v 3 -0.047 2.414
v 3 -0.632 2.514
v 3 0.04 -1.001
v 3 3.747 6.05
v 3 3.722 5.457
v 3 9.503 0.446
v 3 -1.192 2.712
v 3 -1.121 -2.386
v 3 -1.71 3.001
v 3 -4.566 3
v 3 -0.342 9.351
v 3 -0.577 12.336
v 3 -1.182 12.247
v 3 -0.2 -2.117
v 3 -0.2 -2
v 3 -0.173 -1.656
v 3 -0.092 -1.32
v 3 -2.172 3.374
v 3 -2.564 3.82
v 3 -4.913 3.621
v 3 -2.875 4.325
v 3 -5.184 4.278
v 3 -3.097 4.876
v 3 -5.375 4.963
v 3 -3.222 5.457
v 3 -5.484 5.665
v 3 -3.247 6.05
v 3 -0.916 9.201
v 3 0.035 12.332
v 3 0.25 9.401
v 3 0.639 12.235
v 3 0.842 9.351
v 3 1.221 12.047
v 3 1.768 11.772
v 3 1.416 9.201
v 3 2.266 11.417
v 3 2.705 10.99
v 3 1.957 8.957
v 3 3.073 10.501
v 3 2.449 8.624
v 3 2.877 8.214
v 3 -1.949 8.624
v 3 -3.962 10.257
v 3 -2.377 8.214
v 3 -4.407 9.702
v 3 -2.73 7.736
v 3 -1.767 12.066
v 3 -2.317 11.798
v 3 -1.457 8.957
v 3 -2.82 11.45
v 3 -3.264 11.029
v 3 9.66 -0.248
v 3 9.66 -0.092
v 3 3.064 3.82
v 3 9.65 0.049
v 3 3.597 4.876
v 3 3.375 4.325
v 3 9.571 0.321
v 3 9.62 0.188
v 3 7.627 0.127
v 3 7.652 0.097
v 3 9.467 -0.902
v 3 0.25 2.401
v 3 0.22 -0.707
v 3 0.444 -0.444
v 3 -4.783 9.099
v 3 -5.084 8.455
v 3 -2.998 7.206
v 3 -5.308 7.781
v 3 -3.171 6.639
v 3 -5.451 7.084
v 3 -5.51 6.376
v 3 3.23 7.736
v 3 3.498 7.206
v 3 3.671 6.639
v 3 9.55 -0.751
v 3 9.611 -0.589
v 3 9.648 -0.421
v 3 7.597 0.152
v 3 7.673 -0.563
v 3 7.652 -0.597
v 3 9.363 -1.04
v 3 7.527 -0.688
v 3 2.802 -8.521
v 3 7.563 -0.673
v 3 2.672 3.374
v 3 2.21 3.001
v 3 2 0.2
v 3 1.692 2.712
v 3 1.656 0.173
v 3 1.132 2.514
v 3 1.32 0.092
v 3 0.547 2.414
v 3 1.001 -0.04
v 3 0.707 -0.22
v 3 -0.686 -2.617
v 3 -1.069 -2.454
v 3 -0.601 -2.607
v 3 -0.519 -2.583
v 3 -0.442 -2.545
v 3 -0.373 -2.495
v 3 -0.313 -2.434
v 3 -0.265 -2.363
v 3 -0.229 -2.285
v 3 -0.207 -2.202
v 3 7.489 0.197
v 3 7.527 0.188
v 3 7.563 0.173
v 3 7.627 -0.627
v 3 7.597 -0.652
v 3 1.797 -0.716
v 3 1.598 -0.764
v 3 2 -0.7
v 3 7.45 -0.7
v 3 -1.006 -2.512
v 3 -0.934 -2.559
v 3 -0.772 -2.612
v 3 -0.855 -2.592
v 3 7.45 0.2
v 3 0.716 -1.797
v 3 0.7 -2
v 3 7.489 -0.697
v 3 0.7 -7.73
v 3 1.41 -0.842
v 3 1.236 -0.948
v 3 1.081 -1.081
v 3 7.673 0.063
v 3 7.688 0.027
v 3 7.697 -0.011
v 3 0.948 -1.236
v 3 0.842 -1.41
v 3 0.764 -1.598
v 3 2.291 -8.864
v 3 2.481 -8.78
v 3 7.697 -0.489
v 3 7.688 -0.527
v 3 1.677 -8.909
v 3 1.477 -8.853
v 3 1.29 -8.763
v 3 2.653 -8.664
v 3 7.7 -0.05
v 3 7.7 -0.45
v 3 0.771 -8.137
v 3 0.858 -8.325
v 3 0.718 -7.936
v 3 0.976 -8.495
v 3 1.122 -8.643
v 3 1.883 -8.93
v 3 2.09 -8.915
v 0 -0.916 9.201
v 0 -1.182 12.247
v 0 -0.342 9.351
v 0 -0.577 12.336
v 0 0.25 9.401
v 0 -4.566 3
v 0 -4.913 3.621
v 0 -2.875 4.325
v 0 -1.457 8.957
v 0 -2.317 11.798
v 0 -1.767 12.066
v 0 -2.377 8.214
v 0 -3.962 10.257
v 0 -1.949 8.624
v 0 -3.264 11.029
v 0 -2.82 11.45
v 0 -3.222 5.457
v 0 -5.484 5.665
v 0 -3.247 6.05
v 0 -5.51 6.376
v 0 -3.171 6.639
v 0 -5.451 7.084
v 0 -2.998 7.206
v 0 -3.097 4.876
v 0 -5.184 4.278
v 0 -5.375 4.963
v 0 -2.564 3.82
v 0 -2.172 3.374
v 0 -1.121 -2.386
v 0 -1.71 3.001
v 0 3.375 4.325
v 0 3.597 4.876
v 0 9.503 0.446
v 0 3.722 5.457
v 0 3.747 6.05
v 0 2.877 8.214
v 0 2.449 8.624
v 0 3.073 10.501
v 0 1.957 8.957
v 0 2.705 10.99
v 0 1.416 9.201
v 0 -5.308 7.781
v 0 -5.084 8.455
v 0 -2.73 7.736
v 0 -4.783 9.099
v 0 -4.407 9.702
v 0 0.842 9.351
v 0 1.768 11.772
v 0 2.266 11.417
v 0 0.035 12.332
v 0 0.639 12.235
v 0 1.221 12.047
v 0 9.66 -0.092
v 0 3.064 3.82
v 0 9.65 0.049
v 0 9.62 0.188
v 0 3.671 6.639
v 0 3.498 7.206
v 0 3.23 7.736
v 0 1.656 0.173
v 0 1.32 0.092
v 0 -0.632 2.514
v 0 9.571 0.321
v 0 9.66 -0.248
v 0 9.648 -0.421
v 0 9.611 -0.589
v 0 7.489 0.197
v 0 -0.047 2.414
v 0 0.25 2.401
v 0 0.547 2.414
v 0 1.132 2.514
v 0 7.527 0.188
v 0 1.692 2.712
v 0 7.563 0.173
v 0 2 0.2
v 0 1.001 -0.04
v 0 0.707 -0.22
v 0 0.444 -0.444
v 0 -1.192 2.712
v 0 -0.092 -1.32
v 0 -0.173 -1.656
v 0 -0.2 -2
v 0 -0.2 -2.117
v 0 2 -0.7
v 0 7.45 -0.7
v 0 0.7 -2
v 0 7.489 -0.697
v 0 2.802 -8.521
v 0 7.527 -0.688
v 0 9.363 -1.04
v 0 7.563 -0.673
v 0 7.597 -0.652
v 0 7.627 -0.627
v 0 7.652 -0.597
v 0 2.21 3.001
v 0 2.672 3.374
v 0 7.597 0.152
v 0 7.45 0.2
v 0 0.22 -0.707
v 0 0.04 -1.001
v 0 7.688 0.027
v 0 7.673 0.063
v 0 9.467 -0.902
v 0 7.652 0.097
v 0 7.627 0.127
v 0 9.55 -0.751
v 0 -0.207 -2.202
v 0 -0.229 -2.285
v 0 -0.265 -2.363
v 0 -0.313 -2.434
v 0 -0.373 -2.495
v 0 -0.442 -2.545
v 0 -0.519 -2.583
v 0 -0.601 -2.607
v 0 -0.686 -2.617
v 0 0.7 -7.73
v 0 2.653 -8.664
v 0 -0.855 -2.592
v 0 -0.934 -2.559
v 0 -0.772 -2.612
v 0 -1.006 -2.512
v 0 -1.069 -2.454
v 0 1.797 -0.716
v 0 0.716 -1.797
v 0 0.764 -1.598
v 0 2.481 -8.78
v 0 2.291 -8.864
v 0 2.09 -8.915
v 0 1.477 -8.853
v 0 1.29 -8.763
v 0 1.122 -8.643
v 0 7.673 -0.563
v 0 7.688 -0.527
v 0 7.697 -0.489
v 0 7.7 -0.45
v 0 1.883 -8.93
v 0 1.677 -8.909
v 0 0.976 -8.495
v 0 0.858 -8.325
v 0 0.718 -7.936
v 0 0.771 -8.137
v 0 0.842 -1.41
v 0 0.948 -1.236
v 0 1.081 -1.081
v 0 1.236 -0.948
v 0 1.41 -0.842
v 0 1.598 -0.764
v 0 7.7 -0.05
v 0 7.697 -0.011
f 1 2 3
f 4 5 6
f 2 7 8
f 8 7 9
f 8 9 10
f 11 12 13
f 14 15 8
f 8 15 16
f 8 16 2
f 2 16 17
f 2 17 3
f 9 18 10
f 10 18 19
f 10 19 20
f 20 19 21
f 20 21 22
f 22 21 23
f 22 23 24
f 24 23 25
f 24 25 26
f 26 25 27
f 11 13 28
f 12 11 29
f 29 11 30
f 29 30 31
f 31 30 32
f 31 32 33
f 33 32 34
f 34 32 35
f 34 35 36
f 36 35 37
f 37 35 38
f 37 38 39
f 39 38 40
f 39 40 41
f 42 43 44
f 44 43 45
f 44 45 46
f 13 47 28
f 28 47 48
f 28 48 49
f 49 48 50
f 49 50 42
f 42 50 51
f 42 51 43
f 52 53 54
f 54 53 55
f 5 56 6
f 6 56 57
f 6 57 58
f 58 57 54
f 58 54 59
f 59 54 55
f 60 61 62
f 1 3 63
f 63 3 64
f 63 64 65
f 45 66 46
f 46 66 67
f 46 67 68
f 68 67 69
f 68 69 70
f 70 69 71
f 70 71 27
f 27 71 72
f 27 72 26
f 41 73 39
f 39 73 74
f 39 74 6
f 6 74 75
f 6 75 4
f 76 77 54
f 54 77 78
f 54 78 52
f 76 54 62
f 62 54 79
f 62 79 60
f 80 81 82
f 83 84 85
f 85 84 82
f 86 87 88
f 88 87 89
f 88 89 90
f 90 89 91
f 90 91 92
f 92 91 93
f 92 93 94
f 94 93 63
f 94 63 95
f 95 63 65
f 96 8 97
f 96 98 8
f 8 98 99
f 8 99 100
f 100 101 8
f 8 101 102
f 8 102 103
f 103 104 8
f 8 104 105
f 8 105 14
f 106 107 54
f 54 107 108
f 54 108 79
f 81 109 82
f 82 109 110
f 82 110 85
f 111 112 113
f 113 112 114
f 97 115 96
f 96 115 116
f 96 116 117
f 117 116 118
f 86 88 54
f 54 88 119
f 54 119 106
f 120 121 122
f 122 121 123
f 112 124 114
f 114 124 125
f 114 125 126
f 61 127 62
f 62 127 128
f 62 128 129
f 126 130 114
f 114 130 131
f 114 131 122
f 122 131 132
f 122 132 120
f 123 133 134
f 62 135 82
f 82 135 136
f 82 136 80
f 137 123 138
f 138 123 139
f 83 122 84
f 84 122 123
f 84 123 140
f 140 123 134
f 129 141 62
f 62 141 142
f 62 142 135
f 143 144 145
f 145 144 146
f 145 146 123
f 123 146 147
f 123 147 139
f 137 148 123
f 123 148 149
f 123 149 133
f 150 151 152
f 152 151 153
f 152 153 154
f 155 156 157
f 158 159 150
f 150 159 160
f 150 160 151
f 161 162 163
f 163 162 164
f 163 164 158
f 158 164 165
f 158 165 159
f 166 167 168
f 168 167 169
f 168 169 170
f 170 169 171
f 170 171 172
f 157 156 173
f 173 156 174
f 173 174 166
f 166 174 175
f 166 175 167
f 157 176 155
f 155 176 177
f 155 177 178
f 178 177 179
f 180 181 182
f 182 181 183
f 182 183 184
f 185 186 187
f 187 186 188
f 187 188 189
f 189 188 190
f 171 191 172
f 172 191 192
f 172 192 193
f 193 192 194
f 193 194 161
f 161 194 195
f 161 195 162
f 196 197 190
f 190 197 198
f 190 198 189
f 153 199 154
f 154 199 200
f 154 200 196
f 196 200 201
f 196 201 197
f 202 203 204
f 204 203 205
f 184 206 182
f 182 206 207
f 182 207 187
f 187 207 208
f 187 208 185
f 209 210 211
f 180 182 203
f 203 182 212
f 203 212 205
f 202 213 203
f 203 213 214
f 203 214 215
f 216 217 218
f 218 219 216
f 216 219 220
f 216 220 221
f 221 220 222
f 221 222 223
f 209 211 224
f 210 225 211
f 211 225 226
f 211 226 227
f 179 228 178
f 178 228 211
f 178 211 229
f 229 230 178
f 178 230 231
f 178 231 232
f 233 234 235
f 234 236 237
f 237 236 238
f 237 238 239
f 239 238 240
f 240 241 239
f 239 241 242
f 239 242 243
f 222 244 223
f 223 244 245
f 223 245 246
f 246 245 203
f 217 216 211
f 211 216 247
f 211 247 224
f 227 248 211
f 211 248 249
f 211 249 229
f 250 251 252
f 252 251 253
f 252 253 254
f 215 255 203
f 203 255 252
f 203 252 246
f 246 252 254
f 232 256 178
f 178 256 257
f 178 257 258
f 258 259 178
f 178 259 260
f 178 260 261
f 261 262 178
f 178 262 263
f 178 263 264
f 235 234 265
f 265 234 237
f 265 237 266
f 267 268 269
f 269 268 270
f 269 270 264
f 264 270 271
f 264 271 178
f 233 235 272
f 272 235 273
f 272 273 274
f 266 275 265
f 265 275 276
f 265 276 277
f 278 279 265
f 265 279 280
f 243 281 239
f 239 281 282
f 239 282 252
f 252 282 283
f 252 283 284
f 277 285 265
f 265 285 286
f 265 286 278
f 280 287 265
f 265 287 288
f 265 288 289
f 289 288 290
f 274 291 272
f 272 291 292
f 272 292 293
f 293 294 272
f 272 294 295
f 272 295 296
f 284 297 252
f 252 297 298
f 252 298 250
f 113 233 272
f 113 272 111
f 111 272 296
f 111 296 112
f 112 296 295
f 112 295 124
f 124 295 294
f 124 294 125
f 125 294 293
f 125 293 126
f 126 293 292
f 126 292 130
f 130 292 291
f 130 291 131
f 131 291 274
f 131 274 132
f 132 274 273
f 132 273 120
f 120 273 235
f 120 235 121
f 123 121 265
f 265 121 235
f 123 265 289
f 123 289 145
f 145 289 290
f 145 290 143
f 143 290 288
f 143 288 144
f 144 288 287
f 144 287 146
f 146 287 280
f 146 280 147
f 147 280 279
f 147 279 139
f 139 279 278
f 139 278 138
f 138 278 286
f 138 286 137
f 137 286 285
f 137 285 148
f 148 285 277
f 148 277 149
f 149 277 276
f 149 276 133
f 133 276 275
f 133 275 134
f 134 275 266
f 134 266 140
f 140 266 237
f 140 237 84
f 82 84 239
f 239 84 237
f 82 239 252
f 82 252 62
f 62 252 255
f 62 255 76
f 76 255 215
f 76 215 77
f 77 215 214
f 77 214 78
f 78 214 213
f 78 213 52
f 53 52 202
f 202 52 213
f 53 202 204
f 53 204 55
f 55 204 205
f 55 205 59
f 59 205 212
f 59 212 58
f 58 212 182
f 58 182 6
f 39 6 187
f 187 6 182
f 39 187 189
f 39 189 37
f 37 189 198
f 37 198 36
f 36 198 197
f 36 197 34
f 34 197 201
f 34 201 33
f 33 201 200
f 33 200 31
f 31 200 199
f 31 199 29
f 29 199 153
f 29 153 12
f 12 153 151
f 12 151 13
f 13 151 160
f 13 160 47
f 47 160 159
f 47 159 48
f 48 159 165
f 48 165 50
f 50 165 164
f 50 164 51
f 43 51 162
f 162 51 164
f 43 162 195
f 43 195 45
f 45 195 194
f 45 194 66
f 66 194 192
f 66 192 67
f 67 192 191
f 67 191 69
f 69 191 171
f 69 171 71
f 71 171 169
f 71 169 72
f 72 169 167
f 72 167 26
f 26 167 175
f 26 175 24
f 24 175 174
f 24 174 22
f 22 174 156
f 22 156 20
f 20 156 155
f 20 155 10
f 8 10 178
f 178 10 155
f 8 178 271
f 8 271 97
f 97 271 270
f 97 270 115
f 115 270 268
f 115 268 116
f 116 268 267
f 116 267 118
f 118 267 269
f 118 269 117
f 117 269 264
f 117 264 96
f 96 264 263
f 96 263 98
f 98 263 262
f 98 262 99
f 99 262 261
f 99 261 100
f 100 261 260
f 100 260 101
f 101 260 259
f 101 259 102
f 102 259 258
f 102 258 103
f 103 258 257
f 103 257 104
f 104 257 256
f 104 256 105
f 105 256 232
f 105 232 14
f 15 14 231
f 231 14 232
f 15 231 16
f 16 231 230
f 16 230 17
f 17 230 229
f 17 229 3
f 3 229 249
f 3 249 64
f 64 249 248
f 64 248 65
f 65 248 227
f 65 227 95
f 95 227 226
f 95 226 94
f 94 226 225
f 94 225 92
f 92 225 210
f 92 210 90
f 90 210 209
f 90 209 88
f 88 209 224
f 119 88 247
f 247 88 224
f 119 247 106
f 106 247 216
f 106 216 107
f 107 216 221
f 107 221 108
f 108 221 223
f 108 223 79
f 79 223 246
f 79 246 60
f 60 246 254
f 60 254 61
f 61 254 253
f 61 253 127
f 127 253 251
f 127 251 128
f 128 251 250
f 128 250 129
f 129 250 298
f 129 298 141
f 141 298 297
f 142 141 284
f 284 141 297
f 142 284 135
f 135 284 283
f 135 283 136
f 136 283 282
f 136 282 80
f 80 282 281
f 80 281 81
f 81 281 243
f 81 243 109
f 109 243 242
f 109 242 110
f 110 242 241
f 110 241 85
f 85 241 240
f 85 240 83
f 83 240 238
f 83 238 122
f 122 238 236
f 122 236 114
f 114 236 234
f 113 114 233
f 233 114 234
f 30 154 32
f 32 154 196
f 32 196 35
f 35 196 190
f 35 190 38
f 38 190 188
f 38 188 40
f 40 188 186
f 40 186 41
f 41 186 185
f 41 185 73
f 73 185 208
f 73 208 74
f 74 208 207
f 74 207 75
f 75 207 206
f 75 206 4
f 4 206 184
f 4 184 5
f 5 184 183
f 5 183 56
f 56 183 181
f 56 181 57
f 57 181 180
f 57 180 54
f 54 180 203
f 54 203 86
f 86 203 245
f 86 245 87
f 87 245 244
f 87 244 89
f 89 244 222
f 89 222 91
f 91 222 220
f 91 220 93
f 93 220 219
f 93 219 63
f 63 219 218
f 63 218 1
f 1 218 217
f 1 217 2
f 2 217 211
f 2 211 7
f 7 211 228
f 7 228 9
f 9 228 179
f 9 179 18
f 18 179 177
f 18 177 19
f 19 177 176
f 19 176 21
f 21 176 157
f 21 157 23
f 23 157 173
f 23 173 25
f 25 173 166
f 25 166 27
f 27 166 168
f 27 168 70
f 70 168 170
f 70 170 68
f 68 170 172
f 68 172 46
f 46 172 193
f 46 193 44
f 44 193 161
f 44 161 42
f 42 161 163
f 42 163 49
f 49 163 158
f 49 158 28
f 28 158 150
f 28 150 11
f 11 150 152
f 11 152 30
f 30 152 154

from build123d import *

# Parameters (mm, degrees)
SKETCH3_R           = 3.5
BOSS_EXTRUDE1_DEPTH = 3


with BuildPart() as part:
    # Sketch3 → Boss-Extrude1 (new body)
    with BuildSketch(Plane(origin=(0, 0, 0), x_dir=(0, 0, -1), z_dir=(1, 0, 0))):
        with BuildLine():
            Line((7.72981652, 0.7), (2, 0.7))
            ThreePointArc((2, 0.7), (1.080761184, 1.080761184), (0.7, 2))
            Line((0.7, 2), (0.7, 7.45))
            ThreePointArc((0.7, 7.45), (0.626776695, 7.626776695), (0.45, 7.7))
            Line((0.45, 7.7), (0.05, 7.7))
            ThreePointArc((0.05, 7.7), (-0.126776695, 7.626776695), (-0.2, 7.45))
            Line((-0.2, 7.45), (-0.2, 2))
            ThreePointArc((-0.2, 2), (0.444365081, 0.444365081), (2, -0.2))
            Line((2, -0.2), (2.117066245, -0.2))
            ThreePointArc((2.117066245, -0.2), (2.596969784, -0.559669701), (2.386446273, -1.121229629))
            Line((2.386446273, -1.121229629), (-3.000244885, -4.56606569))
            ThreePointArc((-3.000244885, -4.56606569), (-6.730707864, -5.490615532), (-10.256876598, -3.96179883))
            Line((-10.256876598, -3.96179883), (-11.028611154, -3.264006935))
            ThreePointArc((-11.028611154, -3.264006935), (-12.332100499, 0.034920618), (-10.50093713, 3.072822557))
            Line((-10.50093713, 3.072822557), (-0.446346504, 9.502821112))
            ThreePointArc((-0.446346504, 9.502821112), (-0.188247045, 9.620168933), (0.092413552, 9.660361854))
            Line((0.092413552, 9.660361854), (0.248386958, 9.660361854))
            ThreePointArc((0.248386958, 9.660361854), (0.671058342, 9.583459758), (1.039555867, 9.362610022))
            Line((1.039555867, 9.362610022), (8.520985429, 2.802248168))
            ThreePointArc((8.520985429, 2.802248168), (8.852914424, 1.477328616), (7.72981652, 0.7))
        make_face()
        with Locations((-5.901143056, 0.25)):
            Circle(SKETCH3_R, mode=Mode.SUBTRACT)
    extrude(amount=BOSS_EXTRUDE1_DEPTH)


solid = part.part
